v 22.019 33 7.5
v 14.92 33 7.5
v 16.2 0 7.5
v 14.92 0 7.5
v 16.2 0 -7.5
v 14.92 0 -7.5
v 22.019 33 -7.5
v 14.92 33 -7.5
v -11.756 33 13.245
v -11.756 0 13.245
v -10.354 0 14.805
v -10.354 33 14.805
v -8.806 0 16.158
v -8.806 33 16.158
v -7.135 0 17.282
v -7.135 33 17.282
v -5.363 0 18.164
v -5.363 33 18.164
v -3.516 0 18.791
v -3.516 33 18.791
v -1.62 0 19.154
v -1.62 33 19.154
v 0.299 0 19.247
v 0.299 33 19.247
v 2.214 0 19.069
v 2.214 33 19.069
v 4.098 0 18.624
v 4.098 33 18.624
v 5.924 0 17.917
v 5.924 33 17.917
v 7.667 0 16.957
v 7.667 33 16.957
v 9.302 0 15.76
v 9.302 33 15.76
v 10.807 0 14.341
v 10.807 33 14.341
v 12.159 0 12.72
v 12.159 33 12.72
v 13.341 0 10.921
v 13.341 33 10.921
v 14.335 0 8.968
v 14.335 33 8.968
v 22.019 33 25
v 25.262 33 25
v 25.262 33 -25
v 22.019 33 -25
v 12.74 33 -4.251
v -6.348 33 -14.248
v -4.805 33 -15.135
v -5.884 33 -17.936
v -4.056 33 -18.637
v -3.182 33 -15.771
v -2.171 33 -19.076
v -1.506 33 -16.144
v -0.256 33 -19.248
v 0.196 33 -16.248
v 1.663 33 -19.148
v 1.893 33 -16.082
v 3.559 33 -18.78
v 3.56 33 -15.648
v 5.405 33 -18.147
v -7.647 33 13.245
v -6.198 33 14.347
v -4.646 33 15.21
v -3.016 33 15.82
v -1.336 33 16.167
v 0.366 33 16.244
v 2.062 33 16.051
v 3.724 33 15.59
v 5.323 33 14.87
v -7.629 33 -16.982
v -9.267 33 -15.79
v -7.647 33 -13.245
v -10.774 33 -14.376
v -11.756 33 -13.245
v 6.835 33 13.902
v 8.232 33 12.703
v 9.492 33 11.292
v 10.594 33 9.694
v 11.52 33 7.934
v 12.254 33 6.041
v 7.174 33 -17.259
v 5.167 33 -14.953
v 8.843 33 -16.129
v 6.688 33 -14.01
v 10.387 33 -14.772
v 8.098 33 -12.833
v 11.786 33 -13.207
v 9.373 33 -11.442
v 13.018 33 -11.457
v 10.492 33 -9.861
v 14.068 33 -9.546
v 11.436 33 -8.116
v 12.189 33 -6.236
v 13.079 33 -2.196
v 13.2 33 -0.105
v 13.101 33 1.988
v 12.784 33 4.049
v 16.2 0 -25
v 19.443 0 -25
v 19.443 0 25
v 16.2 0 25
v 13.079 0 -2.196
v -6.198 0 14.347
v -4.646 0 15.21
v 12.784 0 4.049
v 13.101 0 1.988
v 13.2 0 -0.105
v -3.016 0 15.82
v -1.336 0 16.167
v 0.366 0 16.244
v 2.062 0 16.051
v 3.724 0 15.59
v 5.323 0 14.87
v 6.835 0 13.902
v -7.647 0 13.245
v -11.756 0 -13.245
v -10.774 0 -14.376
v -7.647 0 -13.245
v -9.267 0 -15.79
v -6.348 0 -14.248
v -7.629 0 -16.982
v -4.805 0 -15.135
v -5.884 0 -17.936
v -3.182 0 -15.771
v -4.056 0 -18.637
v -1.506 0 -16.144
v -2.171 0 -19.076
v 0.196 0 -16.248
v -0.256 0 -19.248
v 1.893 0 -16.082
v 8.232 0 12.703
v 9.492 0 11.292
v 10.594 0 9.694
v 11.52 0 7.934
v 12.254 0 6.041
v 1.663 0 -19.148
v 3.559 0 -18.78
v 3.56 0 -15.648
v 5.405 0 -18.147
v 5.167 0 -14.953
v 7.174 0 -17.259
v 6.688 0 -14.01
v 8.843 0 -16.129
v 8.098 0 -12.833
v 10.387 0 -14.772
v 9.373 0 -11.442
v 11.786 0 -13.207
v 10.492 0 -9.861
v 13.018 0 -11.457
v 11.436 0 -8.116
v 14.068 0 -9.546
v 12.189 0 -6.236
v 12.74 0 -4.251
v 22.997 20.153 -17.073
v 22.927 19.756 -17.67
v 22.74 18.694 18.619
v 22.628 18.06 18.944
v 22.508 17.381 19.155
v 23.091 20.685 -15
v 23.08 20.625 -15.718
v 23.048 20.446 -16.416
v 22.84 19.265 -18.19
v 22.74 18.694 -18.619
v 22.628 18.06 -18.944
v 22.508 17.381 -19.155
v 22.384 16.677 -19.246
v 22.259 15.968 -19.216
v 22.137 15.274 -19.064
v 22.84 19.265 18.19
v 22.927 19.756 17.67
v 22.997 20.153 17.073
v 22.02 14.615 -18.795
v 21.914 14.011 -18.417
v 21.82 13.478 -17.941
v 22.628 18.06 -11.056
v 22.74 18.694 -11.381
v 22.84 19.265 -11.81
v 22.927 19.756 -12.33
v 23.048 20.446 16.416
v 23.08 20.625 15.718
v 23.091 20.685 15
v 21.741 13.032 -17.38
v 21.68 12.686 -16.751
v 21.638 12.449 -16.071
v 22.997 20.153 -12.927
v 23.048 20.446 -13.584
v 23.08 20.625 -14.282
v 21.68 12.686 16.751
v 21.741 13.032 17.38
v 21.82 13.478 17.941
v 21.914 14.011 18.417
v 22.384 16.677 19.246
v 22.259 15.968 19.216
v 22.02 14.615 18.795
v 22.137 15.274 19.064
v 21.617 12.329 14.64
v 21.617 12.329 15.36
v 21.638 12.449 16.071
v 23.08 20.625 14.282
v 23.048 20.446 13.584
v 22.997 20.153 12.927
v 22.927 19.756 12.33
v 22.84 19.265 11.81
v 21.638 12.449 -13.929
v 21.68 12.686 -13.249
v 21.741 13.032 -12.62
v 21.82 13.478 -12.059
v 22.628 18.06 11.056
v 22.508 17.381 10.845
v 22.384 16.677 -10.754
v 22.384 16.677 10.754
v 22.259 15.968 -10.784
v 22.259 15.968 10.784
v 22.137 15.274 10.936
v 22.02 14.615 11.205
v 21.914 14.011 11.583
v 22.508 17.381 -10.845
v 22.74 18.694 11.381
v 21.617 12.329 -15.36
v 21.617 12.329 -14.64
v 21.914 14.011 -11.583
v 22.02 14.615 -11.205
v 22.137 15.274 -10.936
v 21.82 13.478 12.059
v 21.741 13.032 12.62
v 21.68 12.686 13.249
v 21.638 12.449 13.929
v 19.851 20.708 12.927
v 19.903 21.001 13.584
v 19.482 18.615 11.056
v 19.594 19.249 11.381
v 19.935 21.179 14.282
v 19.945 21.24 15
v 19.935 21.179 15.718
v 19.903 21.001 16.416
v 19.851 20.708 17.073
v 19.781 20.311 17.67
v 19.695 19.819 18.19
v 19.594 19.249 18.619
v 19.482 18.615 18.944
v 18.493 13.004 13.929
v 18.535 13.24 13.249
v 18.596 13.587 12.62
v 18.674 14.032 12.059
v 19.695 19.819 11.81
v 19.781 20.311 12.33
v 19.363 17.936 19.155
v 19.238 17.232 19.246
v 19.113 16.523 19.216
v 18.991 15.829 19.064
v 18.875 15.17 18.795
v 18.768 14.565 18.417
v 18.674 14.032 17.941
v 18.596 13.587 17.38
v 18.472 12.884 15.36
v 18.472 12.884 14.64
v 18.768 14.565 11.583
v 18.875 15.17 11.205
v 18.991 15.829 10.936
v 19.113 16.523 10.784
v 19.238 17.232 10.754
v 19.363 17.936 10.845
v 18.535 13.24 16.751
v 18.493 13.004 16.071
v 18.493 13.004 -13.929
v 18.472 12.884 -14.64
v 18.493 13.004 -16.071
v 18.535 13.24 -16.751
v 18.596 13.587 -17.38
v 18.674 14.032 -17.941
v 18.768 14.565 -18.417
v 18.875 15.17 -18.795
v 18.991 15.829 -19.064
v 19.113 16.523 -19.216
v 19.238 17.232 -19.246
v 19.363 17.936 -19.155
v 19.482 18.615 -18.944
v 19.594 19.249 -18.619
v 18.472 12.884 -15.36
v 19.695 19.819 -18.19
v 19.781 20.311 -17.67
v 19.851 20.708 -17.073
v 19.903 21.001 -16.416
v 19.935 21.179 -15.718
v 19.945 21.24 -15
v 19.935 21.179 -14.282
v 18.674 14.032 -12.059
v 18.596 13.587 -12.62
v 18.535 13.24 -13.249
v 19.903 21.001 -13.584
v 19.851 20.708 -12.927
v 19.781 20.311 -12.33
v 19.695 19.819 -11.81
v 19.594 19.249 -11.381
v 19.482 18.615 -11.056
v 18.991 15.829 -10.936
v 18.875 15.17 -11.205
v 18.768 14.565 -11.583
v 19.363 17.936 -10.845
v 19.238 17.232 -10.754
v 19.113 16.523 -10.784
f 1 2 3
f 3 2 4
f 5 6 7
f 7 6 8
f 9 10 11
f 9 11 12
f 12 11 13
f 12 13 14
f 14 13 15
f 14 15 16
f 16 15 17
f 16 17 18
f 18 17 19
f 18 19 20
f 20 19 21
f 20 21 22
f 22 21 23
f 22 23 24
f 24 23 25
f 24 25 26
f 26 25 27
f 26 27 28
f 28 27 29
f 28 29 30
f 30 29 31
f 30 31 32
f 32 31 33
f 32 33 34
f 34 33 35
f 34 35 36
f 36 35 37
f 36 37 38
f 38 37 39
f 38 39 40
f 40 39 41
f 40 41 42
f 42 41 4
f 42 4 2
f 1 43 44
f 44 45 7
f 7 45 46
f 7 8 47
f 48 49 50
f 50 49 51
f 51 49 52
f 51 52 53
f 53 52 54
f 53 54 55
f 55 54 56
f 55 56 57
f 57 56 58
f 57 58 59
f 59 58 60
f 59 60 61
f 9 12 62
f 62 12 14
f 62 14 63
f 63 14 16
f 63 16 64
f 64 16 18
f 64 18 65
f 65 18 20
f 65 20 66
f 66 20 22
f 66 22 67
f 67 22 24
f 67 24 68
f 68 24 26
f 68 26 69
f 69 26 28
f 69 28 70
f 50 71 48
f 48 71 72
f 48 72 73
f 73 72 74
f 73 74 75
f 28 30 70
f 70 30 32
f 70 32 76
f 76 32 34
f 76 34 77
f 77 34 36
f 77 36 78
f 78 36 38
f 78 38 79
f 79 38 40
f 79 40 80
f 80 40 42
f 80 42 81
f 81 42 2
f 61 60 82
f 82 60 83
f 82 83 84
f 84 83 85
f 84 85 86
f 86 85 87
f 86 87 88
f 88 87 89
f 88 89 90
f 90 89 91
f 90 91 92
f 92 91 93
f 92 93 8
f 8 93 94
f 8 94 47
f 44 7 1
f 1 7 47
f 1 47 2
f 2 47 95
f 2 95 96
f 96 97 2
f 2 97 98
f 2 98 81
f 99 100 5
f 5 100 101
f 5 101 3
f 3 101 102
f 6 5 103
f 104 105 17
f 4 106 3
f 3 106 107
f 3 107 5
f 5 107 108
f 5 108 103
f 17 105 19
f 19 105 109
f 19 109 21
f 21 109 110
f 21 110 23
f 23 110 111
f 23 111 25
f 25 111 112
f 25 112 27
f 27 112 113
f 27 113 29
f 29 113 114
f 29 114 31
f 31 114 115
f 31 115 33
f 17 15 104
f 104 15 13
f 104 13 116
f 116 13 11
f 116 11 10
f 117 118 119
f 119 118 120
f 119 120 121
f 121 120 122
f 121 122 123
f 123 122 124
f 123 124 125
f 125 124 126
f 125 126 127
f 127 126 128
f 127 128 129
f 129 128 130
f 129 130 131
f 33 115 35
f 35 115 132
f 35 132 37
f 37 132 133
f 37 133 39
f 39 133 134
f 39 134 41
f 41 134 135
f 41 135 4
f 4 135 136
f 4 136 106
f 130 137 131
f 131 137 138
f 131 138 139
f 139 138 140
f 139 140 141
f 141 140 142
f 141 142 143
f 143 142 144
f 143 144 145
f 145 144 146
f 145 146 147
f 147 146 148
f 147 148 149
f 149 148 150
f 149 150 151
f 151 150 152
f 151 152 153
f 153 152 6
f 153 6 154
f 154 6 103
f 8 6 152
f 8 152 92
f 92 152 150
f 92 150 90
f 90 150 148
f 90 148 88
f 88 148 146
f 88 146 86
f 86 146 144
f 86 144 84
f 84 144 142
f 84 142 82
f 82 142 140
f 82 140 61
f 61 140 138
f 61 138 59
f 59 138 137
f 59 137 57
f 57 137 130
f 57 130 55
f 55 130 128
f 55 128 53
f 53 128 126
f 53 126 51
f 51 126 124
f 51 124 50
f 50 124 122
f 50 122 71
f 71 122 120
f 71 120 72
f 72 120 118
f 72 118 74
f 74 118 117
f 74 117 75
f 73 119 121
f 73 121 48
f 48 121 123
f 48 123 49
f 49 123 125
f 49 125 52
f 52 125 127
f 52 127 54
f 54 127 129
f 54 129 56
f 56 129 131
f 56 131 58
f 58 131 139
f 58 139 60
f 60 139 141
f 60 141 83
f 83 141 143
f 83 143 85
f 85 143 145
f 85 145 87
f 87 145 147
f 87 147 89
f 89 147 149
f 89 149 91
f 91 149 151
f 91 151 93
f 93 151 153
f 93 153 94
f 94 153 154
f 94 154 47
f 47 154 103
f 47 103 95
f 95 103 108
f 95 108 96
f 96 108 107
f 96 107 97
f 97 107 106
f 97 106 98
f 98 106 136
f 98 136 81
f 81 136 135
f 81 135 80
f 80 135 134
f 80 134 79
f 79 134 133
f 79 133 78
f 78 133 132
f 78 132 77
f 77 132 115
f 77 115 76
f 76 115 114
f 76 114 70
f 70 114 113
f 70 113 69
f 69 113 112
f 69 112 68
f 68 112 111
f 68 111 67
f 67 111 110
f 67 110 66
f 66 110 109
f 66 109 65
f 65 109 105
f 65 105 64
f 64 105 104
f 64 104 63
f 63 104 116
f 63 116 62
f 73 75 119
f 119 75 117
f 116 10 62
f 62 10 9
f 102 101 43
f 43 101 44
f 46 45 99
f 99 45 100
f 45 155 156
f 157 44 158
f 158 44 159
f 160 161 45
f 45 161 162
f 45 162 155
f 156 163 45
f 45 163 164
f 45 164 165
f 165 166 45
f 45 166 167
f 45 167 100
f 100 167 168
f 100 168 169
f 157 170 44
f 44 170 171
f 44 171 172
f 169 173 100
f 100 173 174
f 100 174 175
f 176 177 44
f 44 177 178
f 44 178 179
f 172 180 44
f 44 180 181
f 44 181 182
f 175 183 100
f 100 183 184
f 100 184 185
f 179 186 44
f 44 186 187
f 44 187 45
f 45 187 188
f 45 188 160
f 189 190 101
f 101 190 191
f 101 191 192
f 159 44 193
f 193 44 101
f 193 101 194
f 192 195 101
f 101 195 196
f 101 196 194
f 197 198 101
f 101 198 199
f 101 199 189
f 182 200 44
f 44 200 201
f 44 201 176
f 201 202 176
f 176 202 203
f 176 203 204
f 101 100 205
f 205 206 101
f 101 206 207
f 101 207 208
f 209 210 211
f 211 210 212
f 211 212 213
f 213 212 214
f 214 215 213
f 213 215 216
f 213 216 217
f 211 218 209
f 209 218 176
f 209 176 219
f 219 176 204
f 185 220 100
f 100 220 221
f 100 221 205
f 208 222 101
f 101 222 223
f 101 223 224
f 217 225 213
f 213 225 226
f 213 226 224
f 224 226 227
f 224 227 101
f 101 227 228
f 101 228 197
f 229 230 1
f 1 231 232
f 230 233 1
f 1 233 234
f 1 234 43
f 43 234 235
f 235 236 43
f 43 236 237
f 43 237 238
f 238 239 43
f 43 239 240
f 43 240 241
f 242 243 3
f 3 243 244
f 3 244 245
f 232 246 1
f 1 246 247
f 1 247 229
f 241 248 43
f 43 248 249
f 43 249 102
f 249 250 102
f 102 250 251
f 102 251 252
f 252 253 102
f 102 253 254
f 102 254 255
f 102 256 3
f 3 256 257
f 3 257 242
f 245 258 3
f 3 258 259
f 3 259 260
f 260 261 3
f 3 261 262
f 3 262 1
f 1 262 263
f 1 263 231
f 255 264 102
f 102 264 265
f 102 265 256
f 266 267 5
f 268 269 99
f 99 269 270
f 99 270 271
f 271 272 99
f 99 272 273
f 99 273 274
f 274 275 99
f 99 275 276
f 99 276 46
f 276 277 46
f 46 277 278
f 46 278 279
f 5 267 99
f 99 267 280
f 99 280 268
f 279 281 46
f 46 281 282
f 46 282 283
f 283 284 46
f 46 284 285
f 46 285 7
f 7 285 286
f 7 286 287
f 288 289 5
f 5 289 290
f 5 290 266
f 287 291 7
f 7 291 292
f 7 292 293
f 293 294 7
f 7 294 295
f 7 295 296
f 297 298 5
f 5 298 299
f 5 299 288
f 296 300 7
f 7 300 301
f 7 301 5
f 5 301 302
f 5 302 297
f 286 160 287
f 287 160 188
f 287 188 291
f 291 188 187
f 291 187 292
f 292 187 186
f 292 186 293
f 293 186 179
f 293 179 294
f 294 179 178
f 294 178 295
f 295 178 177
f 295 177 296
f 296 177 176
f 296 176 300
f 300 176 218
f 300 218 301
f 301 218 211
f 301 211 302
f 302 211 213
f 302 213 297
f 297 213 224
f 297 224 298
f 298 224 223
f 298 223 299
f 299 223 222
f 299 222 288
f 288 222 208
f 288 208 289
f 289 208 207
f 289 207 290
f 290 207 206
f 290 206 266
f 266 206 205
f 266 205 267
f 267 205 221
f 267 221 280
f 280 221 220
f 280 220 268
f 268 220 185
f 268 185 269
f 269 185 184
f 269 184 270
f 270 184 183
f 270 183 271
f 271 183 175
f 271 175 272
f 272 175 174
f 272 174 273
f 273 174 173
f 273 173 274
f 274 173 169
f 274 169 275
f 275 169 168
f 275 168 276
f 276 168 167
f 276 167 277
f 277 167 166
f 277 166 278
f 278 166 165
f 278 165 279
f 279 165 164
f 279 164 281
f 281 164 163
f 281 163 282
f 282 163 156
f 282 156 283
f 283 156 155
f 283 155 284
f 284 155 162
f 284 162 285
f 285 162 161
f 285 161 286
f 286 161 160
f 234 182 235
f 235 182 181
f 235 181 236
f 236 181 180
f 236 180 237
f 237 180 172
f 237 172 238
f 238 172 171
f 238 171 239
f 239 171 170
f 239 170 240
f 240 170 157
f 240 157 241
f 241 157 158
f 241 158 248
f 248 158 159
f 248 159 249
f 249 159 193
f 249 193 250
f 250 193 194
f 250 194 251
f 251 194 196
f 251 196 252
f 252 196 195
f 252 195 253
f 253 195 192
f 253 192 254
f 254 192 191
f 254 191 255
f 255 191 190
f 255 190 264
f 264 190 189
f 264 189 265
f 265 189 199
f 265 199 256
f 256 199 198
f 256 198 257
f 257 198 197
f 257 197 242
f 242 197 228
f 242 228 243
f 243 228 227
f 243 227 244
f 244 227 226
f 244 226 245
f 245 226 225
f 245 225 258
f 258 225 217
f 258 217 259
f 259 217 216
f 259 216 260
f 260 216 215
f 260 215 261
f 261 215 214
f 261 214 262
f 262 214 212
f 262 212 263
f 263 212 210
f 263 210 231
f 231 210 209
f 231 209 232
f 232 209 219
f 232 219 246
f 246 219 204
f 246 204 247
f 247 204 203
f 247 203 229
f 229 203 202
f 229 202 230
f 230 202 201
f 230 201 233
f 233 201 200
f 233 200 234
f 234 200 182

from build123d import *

# Parameters (mm, degrees)
CROQUIS1_RX                  = 19.25
CROQUIS1_RY                  = 16.2
CROQUIS1_RX_2                = 16.25
CROQUIS1_RY_2                = 13.2
SALIENTE_EXTRUIR1_DEPTH      = 33
CORTAR_EXTRUIR1_DEPTH        = 33
SALIENTE_EXTRUIR2_DEPTH      = 30
SALIENTE_EXTRUIR2_DEPTH_BACK = 30
CROQUIS4_W                   = 5.818790363
CROQUIS4_H                   = 5
CORTAR_EXTRUIR2_DEPTH        = 36
SALIENTE_EXTRUIR4_DEPTH      = 33
SALIENTE_EXTRUIR5_DEPTH      = 50
CORTAR_EXTRUIR3_DEPTH        = 50
CORTAR_EXTRUIR4_START        = -17.5
CORTAR_EXTRUIR4_DEPTH        = 17.5
CORTAR_EXTRUIR5_START        = -17.5
CORTAR_EXTRUIR5_DEPTH        = 17.5
CROQUIS11_R                  = 4.25
CORTAR_EXTRUIR6_DEPTH        = 4


with BuildPart() as part:
    # Croquis1 → Saliente-Extruir1 (new body)
    with BuildSketch(Plane(origin=(0, 0, 0), x_dir=(1, 0, 0), z_dir=(0, 1, 0))):
        with Locations(Location((0, 0), (0, 0, -90))):
            Ellipse(CROQUIS1_RX, CROQUIS1_RY)
        with Locations(Location((0, 0), (0, 0, -90))):
            Ellipse(CROQUIS1_RX_2, CROQUIS1_RY_2, mode=Mode.SUBTRACT)
    extrude(amount=SALIENTE_EXTRUIR1_DEPTH)

    # Croquis2 → Cortar-Extruir1 (cut)
    with BuildSketch(Plane(origin=(0, 33, 0), x_dir=(1, 0, 0), z_dir=(0, 1, 0))):
        Polygon((0, 0), (-7.647156017, 13.245262755), (-17.669144049, 13.245262755), (-24.728519105, -10.297452091), (-13.467362336, -13.245262755), (-7.647156017, -13.245262755), align=None)
    extrude(amount=-CORTAR_EXTRUIR1_DEPTH, mode=Mode.SUBTRACT)



with BuildPart() as body_2:
    # Croquis3 → Saliente-Extruir2 (new, two sides: drawn at the far end of the back side and taken through both)
    with BuildSketch(Plane.XY.offset(-SALIENTE_EXTRUIR2_DEPTH_BACK)):
        Polygon((16.2, 0), (22.018790363, 33), (16.2, 33), align=None)
    extrude(amount=SALIENTE_EXTRUIR2_DEPTH + SALIENTE_EXTRUIR2_DEPTH_BACK)

    # Croquis4 → Cortar-Extruir2 (cut)
    with BuildSketch(Plane(origin=(0, 33, 0), x_dir=(1, 0, 0), z_dir=(0, 1, 0))):
        with Locations((19.109395181, 27.5)):
            Rectangle(CROQUIS4_W, CROQUIS4_H)
        with Locations((19.109395181, -27.5)):
            Rectangle(CROQUIS4_W, CROQUIS4_H)
    extrude(amount=-CORTAR_EXTRUIR2_DEPTH, mode=Mode.SUBTRACT)


with BuildPart() as part_1:
    add(part.part)

    add(body_2.part)  # Saliente-Extruir4 merges body 2
    # Croquis5 → Saliente-Extruir4 (add)
    with BuildSketch(Plane(origin=(0, 33, 0), x_dir=(1, 0, 0), z_dir=(0, 1, 0))):
        Polygon((17.818457755, 0), (17.818457755, 7.5), (13.626292681, 7.5), (13.626292681, -7.5), (17.818457755, -7.5), align=None)
    extrude(amount=-SALIENTE_EXTRUIR4_DEPTH)

    # Croquis6 → Saliente-Extruir5 (add)
    with BuildSketch(Plane(origin=(0, 0, -25), x_dir=(-1, 0, 0), z_dir=(0, 0, -1))):
        Polygon((-22.018790363, 33), (-16.2, 0), (-19.345508023, -0.554637933), (-25.072873954, 31.926868346), (-25.262096019, 33), align=None)
    extrude(amount=-SALIENTE_EXTRUIR5_DEPTH)

    # Croquis7 → Cortar-Extruir3 (cut)
    with BuildSketch(Plane.XY.offset(25)):
        Polygon((16.2, 0), (19.443305655, 0), (19.345508023, -0.554637933), align=None)
    extrude(amount=-CORTAR_EXTRUIR3_DEPTH, mode=Mode.SUBTRACT)

    # Croquis8 → Cortar-Extruir4 (cut)
    with BuildSketch(Plane.XY.offset(25).offset(CORTAR_EXTRUIR4_START)):
        Polygon((16.2, 0), (22.018790363, 33), (16.2, 33), align=None)
    extrude(amount=CORTAR_EXTRUIR4_DEPTH, mode=Mode.SUBTRACT)

    # Croquis9 → Cortar-Extruir5 (cut)
    with BuildSketch(Plane(origin=(0, 0, -25), x_dir=(-1, 0, 0), z_dir=(0, 0, -1)).offset(CORTAR_EXTRUIR5_START)):
        Polygon((-16.2, 0), (-22.018790363, 33), (-16.2, 33), align=None)
    extrude(amount=CORTAR_EXTRUIR5_DEPTH, mode=Mode.SUBTRACT)

    # Croquis11 → Cortar-Extruir6 (cut)
    with BuildSketch(Plane(origin=(18.857018252, -3.325001094, 0), x_dir=(0, 0, -1), z_dir=(0.984807753012208, -0.17364817766693103, 0))):
        with Locations(Location((-15, 20.130372787, 0), (0, 0, 90))):
            Circle(CROQUIS11_R)
        with Locations(Location((15, 20.130372787, 0), (0, 0, 90))):
            Circle(CROQUIS11_R)
    extrude(amount=-CORTAR_EXTRUIR6_DEPTH, mode=Mode.SUBTRACT)


solid = part_1.part
